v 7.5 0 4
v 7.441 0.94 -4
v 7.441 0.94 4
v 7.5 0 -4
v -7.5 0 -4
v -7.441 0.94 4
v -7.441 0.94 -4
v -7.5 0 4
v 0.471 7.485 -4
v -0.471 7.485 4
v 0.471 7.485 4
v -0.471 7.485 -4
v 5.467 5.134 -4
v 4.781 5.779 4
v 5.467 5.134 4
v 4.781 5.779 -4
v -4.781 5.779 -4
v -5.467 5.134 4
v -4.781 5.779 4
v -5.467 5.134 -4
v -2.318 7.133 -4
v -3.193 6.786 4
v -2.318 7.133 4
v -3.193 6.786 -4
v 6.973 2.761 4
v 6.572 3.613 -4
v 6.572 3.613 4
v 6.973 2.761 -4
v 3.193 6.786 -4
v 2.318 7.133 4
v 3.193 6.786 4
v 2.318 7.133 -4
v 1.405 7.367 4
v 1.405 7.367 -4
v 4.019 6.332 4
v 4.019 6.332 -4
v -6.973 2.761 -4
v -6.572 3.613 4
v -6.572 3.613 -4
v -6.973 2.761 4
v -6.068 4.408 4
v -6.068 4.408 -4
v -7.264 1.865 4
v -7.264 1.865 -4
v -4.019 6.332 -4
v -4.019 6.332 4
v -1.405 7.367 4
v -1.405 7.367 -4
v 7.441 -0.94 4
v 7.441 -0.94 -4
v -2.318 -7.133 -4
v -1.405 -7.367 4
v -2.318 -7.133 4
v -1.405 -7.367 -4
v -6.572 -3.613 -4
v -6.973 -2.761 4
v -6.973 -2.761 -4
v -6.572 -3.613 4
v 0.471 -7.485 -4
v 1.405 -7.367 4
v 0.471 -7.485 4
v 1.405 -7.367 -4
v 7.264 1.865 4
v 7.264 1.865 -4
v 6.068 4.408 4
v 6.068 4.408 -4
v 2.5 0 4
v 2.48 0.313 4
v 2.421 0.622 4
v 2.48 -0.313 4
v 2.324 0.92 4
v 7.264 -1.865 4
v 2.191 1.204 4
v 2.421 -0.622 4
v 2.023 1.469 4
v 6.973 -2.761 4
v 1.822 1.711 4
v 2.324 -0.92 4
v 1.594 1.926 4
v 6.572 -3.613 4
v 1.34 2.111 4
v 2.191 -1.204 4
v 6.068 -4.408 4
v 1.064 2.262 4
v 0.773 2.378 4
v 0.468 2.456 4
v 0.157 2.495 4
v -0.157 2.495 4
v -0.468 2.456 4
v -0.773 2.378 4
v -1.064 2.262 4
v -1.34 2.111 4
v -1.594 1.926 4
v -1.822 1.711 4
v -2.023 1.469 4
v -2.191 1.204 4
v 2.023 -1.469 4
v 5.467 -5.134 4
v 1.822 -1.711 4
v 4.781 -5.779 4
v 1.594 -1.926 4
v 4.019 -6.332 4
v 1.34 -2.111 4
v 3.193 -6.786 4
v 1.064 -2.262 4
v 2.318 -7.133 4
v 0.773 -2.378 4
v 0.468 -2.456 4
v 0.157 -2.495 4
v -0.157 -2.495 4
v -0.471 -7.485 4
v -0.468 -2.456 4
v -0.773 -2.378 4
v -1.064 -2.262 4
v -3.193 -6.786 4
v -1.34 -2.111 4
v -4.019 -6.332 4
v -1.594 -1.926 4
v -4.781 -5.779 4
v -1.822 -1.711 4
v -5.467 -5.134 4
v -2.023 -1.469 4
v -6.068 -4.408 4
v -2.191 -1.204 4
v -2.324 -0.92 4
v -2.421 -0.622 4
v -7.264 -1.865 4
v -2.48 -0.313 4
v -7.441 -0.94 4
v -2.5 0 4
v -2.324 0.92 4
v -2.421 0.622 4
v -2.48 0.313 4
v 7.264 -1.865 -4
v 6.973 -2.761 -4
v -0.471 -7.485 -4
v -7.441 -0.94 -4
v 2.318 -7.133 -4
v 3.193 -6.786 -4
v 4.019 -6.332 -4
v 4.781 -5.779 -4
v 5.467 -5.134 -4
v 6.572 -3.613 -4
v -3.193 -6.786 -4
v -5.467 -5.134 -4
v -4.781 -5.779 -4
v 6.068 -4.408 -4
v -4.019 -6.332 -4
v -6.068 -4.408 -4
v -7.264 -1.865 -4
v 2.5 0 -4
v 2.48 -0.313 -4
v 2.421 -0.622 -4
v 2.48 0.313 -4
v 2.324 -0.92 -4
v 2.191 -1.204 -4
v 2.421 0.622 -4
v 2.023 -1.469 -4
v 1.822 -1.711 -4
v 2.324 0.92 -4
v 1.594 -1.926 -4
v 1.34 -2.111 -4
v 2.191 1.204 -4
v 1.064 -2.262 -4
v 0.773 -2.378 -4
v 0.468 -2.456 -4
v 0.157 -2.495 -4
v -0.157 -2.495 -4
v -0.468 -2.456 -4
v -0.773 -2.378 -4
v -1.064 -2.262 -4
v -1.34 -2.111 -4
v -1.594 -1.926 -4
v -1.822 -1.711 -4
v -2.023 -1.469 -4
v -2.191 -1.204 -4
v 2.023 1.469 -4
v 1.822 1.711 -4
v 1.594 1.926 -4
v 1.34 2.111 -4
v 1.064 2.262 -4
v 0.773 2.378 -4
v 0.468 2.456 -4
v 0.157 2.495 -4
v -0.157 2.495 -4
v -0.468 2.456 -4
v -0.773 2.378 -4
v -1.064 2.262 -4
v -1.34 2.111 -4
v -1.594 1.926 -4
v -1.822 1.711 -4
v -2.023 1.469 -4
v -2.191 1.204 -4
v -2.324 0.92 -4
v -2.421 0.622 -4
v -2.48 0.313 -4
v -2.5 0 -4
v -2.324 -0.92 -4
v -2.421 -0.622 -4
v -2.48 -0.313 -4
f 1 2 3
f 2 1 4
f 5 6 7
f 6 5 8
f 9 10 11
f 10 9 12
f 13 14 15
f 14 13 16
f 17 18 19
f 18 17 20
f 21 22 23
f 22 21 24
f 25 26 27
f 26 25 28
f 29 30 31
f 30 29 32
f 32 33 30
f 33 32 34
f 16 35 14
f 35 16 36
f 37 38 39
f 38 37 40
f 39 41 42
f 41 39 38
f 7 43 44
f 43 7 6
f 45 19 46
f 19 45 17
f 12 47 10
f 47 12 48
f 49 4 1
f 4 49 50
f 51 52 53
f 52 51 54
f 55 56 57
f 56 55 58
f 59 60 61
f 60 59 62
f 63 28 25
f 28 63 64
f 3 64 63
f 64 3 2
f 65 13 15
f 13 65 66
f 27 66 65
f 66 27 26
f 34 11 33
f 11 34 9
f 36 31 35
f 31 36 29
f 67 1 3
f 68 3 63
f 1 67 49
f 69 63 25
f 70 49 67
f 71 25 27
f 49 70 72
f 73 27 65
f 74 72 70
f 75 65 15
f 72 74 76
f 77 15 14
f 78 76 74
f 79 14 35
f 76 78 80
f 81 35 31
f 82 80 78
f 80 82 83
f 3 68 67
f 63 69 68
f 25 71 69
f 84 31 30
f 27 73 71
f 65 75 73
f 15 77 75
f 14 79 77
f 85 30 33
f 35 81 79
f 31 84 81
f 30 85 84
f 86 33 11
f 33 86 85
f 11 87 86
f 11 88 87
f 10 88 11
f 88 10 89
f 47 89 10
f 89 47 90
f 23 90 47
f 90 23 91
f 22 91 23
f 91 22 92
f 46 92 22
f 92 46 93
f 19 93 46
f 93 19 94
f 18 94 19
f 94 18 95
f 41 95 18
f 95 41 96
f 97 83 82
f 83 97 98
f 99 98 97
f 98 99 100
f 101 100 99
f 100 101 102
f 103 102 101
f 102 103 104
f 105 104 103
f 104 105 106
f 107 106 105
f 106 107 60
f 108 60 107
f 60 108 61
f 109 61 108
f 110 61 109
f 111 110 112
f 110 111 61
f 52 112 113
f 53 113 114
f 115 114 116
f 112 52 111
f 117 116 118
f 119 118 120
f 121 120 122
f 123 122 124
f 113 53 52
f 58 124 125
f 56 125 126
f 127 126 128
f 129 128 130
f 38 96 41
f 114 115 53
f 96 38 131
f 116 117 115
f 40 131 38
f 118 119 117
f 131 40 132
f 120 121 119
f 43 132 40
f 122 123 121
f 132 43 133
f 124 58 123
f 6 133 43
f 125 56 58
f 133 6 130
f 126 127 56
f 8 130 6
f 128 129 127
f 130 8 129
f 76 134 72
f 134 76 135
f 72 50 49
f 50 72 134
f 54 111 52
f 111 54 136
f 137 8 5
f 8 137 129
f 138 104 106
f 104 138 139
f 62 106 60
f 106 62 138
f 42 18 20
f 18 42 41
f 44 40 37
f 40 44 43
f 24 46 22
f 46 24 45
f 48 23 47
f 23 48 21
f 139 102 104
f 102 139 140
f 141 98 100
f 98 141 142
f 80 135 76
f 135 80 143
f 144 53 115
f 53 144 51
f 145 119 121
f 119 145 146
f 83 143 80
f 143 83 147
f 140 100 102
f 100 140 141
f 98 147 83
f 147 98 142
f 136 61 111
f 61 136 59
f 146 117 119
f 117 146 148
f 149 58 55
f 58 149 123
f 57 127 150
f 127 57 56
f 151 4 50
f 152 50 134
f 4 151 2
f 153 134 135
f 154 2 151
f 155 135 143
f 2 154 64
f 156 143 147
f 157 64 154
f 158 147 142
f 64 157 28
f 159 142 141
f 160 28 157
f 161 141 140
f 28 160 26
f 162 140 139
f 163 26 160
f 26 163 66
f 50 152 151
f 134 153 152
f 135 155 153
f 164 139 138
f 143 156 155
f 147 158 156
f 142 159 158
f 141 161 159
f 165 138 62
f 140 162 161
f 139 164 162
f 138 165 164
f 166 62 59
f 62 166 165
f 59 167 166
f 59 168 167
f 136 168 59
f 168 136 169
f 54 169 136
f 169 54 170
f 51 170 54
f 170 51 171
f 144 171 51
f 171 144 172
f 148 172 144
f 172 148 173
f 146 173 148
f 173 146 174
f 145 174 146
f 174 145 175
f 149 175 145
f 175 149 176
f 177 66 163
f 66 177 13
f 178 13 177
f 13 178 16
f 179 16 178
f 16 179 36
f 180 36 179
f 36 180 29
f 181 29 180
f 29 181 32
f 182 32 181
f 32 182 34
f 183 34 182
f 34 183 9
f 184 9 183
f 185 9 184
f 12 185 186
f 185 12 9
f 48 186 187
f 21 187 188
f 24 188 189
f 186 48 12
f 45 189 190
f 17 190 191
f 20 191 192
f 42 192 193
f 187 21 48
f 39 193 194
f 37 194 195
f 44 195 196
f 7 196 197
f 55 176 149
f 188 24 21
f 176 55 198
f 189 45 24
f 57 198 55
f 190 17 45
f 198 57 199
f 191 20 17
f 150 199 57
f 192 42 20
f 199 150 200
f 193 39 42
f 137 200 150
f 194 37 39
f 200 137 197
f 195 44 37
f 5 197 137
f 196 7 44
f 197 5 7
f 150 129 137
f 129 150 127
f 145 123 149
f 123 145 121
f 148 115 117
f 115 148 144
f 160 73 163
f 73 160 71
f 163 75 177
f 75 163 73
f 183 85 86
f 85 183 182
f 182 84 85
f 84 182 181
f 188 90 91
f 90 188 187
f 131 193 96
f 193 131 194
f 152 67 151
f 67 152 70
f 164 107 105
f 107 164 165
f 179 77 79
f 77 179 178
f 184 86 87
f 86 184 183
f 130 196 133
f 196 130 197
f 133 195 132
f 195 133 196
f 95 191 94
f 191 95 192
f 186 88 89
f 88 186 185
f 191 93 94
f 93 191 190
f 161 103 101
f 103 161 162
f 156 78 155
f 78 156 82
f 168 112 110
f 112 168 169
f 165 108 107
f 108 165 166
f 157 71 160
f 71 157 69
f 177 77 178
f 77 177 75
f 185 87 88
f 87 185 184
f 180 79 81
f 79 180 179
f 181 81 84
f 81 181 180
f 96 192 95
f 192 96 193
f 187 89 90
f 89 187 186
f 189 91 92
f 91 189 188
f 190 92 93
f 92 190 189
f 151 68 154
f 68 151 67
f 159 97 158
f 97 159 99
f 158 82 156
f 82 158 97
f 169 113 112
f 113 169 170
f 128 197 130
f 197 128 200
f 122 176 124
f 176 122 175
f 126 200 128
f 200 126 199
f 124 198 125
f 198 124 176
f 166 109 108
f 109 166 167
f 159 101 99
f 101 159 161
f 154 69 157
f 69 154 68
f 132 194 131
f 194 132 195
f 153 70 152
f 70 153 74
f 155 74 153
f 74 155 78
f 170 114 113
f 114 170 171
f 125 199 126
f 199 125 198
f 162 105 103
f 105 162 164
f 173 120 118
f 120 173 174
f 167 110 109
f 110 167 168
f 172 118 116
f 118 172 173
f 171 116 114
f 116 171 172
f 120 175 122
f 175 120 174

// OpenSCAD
$fn = 50;


difference() {
	union() {
		translate(v = [0, 0, -4.0000000000]) {
			cylinder(h = 8, r = 7.5000000000);
		}
	}
	union() {
		translate(v = [0, 0, -100.0000000000]) {
			cylinder(h = 200, r = 2.5000000000);
		}
	}
}
